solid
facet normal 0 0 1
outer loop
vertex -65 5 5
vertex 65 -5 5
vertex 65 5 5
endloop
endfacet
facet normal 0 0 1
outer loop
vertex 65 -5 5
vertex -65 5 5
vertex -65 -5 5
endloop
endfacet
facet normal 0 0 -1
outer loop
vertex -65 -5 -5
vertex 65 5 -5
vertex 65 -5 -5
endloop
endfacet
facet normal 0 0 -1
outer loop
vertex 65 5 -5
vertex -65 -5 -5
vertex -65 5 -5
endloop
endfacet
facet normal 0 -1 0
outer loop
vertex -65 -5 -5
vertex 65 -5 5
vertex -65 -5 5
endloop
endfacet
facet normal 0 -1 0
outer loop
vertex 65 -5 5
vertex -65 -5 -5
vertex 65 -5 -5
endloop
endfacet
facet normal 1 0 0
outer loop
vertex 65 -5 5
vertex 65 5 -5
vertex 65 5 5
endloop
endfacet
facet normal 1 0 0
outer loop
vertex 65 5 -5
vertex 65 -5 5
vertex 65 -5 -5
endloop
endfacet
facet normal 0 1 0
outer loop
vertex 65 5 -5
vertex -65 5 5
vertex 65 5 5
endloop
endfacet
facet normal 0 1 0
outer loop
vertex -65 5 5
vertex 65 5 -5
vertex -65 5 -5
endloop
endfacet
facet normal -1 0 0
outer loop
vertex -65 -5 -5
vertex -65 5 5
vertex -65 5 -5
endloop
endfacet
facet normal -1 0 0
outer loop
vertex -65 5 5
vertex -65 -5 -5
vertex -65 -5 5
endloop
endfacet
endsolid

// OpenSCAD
devide = 12;


// const
bread = 120;
reserve = 10;
width = bread/devide;


// create
cube([bread+reserve, width, width], true);
